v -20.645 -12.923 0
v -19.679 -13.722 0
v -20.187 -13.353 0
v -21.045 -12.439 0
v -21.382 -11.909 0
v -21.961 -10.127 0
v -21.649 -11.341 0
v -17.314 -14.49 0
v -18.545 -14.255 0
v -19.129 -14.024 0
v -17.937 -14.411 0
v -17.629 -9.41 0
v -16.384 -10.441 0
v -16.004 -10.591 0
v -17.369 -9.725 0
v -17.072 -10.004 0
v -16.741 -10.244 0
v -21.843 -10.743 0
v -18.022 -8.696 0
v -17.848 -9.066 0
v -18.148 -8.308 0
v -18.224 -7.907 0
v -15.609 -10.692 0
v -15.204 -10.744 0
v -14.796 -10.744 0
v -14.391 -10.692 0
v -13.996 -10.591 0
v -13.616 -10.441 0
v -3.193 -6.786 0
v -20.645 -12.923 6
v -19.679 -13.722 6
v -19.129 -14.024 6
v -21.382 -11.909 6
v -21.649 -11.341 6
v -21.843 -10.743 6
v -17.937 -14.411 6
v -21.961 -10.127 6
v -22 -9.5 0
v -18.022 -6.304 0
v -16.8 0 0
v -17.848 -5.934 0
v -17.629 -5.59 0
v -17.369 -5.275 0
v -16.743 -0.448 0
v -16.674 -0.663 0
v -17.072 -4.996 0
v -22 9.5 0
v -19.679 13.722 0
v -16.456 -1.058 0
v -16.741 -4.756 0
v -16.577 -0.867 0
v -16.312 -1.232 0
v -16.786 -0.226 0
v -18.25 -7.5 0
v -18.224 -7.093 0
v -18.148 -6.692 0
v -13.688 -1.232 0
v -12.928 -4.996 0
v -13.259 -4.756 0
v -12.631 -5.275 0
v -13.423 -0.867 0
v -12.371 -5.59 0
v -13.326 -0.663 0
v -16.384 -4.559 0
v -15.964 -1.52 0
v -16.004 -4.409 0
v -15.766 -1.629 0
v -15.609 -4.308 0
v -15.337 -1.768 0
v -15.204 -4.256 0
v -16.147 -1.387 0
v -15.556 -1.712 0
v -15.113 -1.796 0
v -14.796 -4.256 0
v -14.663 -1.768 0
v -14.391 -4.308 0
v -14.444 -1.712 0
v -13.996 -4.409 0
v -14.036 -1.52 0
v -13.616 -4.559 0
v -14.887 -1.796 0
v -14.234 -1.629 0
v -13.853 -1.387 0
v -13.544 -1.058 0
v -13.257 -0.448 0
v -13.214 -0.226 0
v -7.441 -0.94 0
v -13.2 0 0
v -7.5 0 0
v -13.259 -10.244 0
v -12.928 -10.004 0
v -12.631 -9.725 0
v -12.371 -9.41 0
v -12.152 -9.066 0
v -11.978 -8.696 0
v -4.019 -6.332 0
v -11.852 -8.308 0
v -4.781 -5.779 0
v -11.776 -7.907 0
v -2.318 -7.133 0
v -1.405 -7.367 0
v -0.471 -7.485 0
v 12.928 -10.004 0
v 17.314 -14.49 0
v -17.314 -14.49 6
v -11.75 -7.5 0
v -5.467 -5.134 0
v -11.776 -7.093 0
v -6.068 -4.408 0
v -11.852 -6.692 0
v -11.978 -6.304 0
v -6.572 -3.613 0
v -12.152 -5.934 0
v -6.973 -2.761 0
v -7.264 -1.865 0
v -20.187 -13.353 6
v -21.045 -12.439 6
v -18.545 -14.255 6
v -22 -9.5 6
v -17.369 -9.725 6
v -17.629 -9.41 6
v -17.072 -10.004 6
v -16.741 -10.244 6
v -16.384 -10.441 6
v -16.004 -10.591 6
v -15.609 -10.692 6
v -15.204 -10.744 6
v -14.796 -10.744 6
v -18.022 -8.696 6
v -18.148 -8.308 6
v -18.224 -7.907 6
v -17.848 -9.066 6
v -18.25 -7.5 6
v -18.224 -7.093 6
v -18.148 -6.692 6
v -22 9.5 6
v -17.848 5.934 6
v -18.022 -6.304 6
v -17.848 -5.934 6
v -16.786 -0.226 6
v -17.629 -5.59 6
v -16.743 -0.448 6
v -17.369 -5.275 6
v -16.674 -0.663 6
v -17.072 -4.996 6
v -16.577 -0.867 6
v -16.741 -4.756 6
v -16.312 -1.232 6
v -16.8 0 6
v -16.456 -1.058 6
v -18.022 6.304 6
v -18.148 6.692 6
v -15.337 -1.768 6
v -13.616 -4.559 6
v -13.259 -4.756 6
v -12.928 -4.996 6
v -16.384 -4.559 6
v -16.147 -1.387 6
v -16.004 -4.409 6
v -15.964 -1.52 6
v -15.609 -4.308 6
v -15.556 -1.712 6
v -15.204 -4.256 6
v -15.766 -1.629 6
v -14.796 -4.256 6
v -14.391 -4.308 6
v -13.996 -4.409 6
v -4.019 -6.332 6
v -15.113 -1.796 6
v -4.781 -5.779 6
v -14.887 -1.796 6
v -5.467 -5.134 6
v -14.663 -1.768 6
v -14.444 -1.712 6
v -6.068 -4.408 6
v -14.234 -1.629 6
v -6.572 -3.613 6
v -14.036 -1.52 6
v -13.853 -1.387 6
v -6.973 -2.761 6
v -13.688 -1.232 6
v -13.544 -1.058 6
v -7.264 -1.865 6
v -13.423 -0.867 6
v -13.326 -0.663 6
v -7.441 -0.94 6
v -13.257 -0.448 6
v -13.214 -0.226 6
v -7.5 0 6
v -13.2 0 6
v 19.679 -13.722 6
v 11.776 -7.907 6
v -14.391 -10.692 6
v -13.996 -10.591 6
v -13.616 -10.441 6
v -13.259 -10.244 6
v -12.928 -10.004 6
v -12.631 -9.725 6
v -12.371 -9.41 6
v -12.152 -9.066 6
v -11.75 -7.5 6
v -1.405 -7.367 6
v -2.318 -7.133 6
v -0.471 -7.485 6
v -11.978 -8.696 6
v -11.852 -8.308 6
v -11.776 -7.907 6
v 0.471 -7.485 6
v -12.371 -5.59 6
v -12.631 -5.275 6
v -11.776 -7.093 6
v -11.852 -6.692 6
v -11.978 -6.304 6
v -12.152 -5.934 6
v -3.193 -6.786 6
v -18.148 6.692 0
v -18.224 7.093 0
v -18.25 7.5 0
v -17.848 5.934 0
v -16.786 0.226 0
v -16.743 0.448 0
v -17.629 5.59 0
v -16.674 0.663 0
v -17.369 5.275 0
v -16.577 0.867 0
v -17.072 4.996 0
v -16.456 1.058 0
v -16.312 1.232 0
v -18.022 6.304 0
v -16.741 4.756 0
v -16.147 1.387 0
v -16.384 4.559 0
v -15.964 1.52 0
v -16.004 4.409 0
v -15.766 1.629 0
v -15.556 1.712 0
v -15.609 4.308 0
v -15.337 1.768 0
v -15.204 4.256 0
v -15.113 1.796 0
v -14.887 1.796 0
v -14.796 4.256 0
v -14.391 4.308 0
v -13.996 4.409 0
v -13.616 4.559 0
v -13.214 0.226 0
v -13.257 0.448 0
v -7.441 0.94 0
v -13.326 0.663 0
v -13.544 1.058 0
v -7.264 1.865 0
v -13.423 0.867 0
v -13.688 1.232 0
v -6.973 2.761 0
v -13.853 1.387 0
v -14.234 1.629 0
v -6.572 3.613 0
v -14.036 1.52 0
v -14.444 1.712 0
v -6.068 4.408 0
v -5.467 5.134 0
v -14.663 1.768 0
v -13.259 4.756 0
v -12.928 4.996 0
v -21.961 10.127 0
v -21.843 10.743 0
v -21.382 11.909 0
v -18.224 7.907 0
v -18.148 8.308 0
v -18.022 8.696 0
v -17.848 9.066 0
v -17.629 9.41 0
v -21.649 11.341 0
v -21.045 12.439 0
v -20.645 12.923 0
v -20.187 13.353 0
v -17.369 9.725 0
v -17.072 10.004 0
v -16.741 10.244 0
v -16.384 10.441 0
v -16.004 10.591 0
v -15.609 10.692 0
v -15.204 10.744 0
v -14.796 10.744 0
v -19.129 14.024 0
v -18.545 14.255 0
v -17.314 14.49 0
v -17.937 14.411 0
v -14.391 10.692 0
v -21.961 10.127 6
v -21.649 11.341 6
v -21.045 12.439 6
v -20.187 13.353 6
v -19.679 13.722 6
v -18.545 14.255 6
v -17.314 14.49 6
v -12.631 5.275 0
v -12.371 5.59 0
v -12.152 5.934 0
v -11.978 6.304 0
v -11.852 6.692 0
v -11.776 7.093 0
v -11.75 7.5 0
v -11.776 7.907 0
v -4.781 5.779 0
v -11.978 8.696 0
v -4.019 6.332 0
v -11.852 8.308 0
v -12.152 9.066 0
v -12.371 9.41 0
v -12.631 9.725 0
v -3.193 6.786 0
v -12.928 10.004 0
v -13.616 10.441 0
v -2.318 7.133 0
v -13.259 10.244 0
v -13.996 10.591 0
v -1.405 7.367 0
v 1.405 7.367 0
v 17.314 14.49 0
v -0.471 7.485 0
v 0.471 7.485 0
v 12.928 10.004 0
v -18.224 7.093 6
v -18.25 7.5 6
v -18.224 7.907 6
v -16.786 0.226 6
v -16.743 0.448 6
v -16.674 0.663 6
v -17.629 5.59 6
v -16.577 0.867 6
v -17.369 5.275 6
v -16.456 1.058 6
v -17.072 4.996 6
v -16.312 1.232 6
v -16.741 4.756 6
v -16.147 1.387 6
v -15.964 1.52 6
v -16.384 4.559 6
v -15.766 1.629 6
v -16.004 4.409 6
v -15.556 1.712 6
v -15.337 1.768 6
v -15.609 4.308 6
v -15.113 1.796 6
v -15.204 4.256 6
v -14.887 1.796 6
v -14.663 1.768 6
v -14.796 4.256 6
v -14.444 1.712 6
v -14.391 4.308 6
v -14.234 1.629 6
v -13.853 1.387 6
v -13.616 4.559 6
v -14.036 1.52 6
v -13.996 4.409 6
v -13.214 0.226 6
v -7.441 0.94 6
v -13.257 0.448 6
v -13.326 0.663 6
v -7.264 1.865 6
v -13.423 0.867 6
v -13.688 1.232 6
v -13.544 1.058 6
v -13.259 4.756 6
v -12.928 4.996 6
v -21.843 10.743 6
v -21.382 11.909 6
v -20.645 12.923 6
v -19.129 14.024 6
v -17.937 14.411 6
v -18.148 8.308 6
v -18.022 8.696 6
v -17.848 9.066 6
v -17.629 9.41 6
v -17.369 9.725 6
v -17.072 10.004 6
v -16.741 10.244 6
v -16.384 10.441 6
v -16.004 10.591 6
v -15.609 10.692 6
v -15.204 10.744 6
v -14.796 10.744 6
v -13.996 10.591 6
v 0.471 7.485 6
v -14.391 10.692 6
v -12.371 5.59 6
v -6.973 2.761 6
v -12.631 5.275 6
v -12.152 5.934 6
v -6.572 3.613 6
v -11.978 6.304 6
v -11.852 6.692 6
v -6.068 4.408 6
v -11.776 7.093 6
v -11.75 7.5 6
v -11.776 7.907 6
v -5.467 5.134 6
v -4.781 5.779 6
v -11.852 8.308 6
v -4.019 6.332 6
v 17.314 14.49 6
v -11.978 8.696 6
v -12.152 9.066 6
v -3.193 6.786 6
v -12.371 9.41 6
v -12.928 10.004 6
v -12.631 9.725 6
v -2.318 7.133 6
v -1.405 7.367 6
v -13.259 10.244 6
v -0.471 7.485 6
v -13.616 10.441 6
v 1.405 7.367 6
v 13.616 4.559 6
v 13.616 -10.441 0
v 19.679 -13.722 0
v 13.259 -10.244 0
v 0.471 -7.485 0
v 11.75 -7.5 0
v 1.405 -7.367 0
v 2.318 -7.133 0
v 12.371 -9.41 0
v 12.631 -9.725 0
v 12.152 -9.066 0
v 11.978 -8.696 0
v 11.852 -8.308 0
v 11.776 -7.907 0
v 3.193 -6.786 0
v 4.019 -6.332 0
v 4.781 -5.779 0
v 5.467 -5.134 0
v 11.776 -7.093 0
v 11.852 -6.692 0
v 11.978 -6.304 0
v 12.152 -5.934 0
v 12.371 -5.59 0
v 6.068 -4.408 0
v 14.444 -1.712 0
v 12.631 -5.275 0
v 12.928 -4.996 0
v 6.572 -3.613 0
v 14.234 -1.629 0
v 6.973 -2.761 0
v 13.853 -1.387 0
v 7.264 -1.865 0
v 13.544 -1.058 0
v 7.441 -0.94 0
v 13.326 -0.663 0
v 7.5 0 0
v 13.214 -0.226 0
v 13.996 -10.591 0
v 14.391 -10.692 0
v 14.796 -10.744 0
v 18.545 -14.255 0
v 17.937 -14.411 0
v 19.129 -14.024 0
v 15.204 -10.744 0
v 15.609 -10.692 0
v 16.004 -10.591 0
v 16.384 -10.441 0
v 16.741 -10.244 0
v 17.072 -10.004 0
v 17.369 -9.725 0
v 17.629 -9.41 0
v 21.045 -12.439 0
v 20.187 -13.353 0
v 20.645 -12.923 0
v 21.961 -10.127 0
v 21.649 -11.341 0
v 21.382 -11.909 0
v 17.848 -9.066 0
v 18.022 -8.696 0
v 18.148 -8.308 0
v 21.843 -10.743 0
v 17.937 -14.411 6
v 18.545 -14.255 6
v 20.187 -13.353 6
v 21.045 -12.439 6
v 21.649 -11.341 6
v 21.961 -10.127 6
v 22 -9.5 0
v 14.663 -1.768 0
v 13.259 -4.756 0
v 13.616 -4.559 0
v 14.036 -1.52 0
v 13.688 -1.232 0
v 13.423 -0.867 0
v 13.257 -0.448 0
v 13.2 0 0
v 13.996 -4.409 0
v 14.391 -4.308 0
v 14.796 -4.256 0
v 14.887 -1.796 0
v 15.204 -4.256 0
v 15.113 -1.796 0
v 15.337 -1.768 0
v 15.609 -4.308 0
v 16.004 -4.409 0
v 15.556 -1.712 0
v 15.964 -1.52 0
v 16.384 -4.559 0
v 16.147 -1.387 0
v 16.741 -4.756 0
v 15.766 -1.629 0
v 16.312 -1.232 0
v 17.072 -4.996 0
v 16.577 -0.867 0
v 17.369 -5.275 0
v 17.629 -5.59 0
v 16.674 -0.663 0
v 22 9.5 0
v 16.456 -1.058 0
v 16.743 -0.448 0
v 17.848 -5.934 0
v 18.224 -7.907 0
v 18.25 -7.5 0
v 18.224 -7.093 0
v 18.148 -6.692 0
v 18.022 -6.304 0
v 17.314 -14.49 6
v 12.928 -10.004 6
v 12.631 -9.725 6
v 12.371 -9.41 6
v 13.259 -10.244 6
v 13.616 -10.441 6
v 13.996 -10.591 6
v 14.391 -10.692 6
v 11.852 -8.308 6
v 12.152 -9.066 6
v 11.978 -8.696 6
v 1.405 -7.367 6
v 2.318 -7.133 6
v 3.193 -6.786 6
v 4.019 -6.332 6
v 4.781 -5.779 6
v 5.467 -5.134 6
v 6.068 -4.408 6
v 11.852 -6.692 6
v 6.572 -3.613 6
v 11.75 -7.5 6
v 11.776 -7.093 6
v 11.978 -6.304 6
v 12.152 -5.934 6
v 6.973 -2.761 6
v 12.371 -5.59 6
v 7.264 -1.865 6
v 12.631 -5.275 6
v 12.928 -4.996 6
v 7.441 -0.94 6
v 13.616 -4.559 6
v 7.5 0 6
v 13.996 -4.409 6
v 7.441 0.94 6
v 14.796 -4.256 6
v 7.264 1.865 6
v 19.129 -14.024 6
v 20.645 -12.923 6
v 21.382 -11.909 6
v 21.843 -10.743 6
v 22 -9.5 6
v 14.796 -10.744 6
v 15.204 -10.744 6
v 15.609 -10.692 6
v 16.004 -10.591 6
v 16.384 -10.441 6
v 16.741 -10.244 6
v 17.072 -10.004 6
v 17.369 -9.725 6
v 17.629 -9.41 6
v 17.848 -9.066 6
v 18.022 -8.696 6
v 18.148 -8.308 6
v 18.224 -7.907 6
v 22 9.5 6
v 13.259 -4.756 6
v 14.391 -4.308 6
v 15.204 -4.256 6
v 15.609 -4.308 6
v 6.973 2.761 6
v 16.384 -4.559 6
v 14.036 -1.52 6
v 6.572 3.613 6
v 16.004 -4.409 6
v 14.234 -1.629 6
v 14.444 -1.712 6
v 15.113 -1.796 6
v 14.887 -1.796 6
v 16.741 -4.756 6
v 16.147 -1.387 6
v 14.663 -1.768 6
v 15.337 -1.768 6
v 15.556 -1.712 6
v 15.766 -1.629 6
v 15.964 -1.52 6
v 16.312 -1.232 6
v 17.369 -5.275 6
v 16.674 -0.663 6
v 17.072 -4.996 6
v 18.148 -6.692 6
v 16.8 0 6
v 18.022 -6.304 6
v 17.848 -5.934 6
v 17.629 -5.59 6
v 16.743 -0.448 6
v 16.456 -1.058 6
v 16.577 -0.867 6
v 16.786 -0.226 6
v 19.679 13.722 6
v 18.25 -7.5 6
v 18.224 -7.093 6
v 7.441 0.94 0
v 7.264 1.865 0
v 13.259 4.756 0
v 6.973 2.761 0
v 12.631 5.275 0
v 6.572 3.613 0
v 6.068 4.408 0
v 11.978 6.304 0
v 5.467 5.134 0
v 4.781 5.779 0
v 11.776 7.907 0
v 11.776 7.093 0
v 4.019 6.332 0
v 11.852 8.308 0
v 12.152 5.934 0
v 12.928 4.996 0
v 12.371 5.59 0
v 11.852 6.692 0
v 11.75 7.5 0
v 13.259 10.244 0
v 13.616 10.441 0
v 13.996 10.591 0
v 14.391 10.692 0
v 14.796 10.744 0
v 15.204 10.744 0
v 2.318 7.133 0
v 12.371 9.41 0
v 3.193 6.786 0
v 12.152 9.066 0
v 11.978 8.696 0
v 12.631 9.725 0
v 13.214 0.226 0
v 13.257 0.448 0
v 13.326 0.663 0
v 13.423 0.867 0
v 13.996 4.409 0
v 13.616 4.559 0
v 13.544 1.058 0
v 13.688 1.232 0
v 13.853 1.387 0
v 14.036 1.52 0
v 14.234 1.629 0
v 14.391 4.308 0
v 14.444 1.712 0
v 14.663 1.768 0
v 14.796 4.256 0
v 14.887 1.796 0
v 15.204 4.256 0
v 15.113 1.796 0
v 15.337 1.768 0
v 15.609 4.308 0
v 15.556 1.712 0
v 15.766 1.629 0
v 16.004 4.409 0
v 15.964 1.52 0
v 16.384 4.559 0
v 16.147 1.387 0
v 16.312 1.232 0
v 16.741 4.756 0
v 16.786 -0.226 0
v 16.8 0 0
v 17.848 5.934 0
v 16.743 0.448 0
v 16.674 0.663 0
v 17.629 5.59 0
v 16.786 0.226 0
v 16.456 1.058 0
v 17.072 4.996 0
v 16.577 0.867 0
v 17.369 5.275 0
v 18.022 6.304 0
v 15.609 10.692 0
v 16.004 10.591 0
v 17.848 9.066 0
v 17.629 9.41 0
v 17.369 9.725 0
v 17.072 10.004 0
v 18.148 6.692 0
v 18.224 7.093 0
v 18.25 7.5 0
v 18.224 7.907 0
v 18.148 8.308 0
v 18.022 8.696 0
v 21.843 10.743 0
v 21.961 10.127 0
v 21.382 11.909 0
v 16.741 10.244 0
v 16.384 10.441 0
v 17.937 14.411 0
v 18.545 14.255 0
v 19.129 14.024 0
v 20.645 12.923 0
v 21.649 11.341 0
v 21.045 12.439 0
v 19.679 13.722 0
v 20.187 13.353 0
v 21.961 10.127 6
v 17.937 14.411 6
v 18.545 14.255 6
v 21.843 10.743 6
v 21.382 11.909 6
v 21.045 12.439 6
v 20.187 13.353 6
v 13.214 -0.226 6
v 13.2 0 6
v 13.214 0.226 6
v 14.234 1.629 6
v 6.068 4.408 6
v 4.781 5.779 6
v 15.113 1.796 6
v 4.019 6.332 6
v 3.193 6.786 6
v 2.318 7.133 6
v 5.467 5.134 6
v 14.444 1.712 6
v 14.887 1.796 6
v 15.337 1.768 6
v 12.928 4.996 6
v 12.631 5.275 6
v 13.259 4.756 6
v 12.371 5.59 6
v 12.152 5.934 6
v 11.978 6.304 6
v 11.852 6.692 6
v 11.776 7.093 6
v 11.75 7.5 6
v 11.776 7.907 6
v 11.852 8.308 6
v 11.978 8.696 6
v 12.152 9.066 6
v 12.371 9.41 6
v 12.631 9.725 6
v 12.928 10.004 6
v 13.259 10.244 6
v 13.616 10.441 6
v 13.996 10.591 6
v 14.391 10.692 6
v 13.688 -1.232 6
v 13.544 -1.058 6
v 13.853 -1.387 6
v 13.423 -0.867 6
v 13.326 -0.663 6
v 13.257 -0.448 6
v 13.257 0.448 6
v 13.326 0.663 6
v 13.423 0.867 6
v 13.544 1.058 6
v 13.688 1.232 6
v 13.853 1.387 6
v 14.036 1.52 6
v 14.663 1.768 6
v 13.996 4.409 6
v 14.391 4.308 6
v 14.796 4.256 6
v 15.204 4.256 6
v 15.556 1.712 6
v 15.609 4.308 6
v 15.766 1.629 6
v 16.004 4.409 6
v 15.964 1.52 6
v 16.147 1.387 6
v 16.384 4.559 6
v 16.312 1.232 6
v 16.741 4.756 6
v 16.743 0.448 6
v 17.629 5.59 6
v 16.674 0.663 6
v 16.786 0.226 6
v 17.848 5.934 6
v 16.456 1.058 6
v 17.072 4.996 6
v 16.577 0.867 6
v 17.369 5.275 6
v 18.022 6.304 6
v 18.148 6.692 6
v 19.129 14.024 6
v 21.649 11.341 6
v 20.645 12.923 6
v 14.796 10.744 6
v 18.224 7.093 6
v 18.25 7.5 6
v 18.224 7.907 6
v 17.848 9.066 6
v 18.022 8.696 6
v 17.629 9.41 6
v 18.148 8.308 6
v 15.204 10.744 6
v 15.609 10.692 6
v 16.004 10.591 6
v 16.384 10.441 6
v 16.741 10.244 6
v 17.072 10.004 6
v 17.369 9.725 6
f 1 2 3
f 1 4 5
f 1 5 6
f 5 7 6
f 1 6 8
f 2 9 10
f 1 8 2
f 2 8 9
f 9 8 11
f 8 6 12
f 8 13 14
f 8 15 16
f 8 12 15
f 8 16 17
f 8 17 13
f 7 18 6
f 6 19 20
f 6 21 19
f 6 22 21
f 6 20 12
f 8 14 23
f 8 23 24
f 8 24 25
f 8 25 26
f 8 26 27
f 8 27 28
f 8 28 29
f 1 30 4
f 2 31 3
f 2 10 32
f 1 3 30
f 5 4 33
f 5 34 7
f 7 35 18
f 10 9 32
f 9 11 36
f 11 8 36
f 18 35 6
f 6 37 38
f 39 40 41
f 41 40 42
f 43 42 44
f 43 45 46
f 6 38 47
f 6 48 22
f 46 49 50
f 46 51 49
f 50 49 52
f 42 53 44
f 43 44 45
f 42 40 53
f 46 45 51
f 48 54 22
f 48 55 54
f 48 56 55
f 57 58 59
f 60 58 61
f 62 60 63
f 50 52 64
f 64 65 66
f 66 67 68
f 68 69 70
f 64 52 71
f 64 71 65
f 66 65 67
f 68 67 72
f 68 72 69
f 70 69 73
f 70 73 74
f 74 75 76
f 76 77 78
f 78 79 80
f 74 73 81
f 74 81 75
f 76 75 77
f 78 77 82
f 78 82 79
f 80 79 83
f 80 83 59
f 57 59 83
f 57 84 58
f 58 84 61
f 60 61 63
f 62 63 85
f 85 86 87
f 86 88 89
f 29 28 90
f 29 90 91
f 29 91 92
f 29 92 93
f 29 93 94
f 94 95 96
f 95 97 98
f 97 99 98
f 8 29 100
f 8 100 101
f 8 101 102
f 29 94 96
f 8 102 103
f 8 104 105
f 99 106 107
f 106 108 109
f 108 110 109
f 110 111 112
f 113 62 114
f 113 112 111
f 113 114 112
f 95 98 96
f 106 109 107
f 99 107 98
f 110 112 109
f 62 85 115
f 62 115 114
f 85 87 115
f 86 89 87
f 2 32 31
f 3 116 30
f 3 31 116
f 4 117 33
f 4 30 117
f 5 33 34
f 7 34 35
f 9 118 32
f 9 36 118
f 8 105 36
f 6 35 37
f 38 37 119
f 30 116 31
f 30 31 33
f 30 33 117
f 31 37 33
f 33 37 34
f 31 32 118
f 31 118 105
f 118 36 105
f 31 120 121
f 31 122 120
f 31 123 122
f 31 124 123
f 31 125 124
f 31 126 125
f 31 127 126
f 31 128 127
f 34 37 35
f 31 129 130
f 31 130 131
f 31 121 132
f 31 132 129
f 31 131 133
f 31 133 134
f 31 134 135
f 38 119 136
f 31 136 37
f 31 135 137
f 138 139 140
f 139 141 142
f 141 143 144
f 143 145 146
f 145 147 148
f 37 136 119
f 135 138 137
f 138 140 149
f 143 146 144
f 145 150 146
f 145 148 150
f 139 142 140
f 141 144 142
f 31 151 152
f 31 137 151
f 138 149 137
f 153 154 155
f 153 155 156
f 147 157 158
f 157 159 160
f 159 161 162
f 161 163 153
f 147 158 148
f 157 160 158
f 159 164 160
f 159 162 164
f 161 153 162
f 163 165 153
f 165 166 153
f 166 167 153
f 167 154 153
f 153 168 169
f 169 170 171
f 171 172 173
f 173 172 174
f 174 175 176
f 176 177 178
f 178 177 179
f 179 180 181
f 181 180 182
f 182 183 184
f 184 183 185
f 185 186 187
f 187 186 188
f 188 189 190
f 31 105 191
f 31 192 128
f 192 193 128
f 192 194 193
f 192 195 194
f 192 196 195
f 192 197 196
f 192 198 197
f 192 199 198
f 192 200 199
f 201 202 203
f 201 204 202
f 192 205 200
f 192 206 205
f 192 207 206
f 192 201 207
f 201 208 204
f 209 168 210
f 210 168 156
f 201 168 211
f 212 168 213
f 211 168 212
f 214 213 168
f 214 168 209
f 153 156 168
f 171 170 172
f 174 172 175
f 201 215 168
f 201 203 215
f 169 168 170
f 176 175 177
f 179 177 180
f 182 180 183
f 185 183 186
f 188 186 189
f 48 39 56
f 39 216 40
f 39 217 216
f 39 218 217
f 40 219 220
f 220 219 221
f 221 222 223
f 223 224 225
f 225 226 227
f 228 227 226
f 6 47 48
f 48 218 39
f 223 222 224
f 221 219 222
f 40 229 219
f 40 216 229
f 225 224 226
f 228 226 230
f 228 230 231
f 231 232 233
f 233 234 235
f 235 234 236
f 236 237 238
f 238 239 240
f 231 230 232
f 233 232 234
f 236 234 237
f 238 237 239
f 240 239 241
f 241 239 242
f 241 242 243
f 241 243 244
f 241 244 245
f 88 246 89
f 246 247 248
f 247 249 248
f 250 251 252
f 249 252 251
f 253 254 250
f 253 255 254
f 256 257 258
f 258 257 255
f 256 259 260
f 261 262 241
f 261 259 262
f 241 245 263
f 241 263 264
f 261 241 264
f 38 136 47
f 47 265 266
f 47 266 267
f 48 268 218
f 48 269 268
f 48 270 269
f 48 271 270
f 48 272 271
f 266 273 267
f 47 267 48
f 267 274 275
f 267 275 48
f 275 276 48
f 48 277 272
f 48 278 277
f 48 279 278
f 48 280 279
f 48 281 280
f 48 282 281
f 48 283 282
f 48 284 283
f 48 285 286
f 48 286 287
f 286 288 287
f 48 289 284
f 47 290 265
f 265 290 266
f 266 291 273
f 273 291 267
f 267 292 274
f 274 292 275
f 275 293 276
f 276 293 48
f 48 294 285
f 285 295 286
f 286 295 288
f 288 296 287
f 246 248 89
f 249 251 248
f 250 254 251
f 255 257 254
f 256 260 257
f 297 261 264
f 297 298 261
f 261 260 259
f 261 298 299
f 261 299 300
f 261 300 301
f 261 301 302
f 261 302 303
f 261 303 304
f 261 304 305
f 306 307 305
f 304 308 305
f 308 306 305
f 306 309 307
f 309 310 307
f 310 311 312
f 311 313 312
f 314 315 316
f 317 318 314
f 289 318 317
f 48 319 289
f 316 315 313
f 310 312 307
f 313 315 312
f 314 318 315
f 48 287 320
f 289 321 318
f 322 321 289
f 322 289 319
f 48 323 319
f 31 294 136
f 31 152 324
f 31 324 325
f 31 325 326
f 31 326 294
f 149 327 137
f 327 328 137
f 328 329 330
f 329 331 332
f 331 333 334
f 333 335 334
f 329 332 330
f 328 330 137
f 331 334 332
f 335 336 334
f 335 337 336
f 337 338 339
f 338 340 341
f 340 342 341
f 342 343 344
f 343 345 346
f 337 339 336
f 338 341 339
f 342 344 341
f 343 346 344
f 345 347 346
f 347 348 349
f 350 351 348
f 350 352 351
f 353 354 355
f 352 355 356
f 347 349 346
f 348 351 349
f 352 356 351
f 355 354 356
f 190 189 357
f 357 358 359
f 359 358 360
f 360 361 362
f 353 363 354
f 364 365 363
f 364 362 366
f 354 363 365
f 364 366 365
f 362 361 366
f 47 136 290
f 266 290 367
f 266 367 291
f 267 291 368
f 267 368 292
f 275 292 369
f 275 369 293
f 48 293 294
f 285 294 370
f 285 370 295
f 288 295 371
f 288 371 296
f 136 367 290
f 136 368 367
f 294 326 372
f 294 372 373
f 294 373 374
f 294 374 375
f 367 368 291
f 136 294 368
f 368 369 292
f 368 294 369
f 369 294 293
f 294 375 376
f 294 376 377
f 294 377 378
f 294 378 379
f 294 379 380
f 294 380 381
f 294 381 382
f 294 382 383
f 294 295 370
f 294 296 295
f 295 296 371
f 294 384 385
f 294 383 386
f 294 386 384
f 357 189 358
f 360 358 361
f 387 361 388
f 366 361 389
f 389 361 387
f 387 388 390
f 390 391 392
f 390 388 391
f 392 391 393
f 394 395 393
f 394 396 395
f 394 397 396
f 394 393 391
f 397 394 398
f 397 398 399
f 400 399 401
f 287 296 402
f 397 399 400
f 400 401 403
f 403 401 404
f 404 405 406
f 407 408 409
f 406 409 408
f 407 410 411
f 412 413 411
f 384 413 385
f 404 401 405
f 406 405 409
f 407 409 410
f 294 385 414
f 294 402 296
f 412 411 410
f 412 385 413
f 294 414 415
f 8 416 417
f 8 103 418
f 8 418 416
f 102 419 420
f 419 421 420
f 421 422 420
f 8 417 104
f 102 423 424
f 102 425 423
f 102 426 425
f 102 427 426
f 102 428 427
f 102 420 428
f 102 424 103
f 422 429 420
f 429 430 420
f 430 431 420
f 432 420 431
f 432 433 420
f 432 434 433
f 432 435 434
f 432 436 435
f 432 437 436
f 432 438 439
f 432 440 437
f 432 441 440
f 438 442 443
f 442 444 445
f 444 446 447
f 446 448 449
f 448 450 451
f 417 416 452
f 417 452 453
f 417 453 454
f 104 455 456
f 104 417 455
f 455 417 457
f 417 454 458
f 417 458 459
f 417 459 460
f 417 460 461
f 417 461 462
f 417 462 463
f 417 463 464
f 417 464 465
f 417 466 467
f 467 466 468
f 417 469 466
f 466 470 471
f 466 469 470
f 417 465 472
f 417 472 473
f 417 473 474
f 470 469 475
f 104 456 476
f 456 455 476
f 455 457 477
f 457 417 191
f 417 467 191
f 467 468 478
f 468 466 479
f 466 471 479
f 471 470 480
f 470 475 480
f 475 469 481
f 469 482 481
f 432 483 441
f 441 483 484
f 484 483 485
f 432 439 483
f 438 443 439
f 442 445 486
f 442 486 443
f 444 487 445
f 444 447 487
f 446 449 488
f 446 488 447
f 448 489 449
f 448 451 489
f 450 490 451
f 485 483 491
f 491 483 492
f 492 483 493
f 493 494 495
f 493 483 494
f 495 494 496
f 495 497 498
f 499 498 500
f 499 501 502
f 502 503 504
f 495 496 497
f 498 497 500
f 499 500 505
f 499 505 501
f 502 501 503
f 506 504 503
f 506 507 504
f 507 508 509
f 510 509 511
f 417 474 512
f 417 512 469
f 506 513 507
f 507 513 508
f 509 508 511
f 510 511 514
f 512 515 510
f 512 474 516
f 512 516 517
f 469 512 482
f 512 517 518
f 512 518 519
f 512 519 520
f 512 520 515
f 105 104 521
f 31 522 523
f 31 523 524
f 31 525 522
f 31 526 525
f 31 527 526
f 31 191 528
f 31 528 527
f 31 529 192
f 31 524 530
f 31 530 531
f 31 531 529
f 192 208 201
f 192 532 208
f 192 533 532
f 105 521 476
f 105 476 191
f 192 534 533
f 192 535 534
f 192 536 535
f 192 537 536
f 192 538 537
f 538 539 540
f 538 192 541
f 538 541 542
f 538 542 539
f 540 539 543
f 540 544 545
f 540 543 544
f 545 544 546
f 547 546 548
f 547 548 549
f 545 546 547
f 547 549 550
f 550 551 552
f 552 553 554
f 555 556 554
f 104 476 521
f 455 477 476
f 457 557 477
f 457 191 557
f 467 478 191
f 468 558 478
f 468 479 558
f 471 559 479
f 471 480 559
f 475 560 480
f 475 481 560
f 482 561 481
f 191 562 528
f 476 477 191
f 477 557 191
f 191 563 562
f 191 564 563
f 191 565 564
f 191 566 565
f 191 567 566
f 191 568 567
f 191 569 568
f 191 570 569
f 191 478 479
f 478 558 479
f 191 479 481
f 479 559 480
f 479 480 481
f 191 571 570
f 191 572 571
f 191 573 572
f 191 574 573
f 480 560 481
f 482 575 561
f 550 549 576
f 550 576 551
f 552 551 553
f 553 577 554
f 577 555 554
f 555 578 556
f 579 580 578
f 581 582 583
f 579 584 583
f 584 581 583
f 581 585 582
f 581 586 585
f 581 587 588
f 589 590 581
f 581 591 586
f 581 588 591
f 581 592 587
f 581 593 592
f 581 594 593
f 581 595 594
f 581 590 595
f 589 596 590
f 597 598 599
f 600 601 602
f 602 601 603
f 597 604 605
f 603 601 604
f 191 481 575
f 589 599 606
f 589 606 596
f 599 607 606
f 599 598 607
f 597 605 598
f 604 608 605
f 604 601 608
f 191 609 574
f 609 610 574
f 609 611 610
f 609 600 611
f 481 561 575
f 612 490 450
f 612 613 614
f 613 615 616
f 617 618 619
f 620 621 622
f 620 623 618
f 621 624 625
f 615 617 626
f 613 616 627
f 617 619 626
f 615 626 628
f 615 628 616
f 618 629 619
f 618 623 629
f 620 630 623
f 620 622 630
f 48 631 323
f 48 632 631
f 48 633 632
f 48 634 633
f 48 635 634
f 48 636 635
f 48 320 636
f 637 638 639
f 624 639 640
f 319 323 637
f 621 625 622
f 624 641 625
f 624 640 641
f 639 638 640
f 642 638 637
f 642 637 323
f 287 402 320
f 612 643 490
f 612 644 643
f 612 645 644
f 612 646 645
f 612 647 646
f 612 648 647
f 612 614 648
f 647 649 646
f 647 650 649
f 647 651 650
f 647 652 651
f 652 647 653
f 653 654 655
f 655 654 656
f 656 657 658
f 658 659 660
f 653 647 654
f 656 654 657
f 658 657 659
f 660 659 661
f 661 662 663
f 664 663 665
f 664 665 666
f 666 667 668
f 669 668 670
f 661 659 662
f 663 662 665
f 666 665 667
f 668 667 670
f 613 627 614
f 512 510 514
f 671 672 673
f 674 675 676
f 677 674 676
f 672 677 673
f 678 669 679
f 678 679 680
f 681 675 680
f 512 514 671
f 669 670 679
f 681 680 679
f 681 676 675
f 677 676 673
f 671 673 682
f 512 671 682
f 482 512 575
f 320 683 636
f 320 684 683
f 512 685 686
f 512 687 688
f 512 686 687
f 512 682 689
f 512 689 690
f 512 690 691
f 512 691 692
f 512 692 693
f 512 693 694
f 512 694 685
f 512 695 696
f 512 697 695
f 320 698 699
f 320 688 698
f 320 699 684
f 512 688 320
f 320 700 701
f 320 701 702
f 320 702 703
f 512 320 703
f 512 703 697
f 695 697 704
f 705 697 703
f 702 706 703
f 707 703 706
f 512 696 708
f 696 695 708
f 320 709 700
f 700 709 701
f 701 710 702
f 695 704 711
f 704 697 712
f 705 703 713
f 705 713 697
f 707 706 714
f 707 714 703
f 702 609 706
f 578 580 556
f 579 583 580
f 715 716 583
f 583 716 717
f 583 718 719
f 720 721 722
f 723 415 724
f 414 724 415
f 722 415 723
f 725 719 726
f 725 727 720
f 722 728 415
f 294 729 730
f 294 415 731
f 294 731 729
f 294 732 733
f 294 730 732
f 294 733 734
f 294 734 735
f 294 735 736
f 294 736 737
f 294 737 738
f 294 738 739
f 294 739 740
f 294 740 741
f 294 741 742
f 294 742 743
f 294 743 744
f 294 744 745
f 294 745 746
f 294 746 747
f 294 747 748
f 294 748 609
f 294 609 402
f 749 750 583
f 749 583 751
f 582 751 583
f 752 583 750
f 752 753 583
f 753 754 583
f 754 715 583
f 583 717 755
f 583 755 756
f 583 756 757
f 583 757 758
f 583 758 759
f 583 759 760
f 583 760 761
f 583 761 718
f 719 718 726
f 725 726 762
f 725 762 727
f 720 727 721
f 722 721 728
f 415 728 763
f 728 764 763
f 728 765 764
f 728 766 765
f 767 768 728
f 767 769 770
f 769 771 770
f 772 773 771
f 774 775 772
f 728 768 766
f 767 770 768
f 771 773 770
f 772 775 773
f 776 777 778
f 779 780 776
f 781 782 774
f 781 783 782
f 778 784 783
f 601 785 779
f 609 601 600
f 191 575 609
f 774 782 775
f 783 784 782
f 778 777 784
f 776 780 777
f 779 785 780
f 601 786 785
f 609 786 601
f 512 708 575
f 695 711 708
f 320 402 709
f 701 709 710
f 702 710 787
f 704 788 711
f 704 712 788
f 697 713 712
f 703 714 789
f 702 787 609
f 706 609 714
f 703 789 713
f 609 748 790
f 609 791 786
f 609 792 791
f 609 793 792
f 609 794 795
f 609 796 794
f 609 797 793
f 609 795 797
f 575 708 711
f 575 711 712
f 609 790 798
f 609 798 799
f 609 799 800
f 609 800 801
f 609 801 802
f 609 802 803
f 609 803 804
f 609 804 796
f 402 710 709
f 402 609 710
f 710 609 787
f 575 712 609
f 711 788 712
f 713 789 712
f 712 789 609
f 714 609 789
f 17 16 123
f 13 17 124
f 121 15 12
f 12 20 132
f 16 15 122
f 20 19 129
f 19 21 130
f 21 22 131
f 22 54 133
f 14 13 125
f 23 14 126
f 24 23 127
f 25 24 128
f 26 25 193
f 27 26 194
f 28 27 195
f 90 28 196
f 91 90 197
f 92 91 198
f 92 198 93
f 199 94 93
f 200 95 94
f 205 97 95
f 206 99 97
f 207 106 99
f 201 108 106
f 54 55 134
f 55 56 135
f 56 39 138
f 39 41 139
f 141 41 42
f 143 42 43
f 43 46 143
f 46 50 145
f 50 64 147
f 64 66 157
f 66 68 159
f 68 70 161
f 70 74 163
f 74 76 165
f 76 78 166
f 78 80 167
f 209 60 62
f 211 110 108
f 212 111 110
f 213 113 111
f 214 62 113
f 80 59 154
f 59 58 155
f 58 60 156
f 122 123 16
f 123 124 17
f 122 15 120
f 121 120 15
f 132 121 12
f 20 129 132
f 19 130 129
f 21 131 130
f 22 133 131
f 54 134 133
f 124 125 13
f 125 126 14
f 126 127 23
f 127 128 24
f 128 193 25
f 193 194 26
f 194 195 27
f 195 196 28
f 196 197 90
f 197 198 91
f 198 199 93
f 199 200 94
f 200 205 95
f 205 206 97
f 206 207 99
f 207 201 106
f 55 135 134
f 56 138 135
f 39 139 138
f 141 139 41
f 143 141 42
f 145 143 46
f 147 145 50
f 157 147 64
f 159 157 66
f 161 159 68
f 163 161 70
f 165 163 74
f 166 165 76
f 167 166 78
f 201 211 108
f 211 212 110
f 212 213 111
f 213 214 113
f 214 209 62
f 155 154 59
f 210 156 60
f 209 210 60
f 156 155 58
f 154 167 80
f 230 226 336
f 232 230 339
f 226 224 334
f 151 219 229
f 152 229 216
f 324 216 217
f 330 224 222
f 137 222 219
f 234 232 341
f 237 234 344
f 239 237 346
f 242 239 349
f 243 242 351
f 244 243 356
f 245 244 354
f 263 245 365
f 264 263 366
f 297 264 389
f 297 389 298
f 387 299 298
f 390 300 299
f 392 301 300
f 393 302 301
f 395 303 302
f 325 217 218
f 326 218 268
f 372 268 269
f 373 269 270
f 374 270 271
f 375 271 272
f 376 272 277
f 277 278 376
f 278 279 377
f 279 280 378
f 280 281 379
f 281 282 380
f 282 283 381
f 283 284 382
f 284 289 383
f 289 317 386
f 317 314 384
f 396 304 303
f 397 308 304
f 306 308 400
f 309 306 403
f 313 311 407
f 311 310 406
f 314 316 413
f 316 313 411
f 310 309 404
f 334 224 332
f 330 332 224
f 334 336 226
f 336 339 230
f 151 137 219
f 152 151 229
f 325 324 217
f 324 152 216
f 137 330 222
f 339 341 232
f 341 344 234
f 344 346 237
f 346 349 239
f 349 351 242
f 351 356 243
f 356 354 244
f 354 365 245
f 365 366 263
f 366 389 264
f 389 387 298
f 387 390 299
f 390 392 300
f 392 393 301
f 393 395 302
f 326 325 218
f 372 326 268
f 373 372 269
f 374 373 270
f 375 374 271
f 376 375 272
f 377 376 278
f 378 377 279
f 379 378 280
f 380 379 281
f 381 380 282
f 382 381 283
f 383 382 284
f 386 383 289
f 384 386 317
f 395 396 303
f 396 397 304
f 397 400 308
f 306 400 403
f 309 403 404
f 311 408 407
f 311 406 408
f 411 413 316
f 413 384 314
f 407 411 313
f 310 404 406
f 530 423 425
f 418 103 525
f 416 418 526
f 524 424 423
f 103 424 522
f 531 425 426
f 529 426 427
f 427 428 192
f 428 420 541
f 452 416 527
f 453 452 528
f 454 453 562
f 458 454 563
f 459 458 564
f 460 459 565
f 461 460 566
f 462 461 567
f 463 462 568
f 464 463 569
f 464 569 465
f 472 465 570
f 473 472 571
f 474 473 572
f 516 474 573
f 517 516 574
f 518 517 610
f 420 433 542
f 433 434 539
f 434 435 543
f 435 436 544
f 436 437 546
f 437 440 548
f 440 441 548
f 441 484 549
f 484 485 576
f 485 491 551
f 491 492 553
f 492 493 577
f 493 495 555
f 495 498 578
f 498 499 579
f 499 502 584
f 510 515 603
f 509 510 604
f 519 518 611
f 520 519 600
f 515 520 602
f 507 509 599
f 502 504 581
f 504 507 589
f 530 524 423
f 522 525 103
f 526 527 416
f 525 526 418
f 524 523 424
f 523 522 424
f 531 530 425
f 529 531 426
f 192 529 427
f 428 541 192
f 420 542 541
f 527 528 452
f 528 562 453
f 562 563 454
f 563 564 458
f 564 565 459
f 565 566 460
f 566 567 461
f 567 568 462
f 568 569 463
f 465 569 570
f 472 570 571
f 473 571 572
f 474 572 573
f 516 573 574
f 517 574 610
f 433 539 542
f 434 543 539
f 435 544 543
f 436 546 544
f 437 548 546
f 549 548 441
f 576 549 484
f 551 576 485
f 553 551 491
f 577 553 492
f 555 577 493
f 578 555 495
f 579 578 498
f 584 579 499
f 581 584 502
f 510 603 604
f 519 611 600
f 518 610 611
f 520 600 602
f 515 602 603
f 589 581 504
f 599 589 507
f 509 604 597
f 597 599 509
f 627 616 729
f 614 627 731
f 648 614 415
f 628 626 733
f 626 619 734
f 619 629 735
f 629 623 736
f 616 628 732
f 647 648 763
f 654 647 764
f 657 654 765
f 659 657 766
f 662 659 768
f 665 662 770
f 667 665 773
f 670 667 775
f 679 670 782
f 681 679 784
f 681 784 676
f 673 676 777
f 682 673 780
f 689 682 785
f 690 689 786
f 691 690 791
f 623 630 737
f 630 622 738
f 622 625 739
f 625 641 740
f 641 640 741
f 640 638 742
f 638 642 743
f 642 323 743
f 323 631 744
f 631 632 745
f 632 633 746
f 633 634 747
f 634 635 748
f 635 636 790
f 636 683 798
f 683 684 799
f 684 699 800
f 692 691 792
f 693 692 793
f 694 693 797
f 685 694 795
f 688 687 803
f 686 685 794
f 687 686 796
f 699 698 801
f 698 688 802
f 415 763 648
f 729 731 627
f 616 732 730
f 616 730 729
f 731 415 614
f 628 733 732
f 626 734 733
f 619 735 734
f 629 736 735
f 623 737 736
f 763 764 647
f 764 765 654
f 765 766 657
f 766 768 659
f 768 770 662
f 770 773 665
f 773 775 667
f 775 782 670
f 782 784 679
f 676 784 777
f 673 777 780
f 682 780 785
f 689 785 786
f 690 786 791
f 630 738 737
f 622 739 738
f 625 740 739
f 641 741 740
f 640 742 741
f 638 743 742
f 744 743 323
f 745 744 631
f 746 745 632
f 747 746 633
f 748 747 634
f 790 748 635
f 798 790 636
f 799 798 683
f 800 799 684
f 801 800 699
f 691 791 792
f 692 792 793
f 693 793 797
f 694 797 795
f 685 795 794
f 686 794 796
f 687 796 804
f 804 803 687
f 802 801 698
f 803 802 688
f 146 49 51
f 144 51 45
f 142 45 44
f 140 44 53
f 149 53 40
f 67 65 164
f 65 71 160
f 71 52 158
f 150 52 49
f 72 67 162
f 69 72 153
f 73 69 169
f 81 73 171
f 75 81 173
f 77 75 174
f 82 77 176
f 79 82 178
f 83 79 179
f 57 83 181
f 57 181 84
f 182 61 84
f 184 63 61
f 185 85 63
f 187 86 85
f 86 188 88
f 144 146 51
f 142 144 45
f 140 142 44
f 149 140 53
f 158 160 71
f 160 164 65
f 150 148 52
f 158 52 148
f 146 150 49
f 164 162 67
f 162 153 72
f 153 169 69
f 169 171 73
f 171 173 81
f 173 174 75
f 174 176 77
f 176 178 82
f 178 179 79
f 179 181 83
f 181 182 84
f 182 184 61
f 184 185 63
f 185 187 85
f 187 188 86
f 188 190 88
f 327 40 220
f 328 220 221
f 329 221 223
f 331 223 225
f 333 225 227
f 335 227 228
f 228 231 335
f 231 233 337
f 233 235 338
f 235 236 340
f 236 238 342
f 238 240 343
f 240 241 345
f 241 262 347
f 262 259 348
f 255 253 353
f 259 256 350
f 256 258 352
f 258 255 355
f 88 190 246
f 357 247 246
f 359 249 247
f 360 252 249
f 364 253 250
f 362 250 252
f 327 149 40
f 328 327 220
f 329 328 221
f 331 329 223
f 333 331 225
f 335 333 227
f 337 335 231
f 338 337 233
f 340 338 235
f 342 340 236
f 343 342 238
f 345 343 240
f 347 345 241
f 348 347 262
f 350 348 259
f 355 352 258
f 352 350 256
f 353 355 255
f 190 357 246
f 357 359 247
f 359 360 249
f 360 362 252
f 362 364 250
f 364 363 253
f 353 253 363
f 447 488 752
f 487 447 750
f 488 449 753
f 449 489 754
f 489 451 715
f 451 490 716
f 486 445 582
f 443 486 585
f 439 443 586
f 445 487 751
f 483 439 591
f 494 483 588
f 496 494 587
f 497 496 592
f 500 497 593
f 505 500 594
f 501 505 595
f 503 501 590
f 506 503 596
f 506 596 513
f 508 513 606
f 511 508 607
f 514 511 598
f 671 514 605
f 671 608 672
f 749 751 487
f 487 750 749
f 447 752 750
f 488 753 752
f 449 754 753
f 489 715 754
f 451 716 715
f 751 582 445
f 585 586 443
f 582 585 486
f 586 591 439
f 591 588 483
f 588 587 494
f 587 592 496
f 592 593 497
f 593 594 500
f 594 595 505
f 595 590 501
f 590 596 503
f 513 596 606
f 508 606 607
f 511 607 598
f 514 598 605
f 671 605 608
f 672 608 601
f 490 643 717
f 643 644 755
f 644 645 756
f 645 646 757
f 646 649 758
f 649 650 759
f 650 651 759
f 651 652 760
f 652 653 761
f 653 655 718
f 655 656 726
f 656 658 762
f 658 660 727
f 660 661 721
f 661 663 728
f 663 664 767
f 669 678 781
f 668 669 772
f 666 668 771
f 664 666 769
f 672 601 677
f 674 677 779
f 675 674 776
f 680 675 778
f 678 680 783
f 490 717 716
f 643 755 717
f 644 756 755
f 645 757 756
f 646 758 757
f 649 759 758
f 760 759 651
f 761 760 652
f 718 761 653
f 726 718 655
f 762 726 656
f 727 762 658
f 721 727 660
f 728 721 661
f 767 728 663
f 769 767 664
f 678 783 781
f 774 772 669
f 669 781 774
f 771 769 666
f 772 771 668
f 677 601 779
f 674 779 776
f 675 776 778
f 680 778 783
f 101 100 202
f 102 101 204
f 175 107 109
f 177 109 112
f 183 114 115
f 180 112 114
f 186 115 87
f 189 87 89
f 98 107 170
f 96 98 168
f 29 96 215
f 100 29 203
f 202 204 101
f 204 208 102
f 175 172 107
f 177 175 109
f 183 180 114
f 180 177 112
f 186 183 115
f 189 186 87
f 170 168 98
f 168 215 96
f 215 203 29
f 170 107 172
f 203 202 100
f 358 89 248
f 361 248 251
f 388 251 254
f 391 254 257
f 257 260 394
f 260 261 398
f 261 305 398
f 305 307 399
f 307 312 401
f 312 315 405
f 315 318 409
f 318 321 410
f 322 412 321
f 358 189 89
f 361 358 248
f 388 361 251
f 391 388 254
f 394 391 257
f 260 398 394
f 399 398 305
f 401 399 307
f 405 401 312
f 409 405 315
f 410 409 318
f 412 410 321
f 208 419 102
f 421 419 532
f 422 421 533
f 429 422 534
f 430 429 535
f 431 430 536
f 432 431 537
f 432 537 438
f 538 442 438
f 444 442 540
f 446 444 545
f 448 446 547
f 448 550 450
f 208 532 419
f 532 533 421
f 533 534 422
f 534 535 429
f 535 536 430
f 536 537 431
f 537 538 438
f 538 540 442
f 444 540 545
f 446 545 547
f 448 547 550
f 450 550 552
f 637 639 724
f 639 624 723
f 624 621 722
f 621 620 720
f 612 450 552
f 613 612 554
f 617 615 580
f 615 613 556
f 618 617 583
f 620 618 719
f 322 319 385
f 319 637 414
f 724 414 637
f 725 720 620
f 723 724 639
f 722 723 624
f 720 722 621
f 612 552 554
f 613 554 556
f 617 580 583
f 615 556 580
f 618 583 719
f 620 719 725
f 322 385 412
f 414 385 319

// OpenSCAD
$fn = 50;

difference() {
	union() {
		hull() {
			translate(v = [-17.0, 9.5, 0]) {
				cylinder(h = 6, r = 5);
			}
			translate(v = [17.0, 9.5, 0]) {
				cylinder(h = 6, r = 5);
			}
			translate(v = [-17.0, -9.5, 0]) {
				cylinder(h = 6, r = 5);
			}
			translate(v = [17.0, -9.5, 0]) {
				cylinder(h = 6, r = 5);
			}
		}
	}
	union() {
		translate(v = [-15.0, -7.5, 0]) {
			cylinder(h = 6, r = 3.25);
		}
		translate(v = [-15.0, 7.5, 0]) {
			cylinder(h = 6, r = 3.25);
		}
		translate(v = [15.0, -7.5, 0]) {
			cylinder(h = 6, r = 3.25);
		}
		translate(v = [15.0, 7.5, 0]) {
			cylinder(h = 6, r = 3.25);
		}
		translate(v = [-15.0, 0.0, 0]) {
			cylinder(h = 6, r = 1.8);
		}
		translate(v = [15.0, 0.0, 0]) {
			cylinder(h = 6, r = 1.8);
		}
		cylinder(h = 6, r = 7.5);
	}
}
